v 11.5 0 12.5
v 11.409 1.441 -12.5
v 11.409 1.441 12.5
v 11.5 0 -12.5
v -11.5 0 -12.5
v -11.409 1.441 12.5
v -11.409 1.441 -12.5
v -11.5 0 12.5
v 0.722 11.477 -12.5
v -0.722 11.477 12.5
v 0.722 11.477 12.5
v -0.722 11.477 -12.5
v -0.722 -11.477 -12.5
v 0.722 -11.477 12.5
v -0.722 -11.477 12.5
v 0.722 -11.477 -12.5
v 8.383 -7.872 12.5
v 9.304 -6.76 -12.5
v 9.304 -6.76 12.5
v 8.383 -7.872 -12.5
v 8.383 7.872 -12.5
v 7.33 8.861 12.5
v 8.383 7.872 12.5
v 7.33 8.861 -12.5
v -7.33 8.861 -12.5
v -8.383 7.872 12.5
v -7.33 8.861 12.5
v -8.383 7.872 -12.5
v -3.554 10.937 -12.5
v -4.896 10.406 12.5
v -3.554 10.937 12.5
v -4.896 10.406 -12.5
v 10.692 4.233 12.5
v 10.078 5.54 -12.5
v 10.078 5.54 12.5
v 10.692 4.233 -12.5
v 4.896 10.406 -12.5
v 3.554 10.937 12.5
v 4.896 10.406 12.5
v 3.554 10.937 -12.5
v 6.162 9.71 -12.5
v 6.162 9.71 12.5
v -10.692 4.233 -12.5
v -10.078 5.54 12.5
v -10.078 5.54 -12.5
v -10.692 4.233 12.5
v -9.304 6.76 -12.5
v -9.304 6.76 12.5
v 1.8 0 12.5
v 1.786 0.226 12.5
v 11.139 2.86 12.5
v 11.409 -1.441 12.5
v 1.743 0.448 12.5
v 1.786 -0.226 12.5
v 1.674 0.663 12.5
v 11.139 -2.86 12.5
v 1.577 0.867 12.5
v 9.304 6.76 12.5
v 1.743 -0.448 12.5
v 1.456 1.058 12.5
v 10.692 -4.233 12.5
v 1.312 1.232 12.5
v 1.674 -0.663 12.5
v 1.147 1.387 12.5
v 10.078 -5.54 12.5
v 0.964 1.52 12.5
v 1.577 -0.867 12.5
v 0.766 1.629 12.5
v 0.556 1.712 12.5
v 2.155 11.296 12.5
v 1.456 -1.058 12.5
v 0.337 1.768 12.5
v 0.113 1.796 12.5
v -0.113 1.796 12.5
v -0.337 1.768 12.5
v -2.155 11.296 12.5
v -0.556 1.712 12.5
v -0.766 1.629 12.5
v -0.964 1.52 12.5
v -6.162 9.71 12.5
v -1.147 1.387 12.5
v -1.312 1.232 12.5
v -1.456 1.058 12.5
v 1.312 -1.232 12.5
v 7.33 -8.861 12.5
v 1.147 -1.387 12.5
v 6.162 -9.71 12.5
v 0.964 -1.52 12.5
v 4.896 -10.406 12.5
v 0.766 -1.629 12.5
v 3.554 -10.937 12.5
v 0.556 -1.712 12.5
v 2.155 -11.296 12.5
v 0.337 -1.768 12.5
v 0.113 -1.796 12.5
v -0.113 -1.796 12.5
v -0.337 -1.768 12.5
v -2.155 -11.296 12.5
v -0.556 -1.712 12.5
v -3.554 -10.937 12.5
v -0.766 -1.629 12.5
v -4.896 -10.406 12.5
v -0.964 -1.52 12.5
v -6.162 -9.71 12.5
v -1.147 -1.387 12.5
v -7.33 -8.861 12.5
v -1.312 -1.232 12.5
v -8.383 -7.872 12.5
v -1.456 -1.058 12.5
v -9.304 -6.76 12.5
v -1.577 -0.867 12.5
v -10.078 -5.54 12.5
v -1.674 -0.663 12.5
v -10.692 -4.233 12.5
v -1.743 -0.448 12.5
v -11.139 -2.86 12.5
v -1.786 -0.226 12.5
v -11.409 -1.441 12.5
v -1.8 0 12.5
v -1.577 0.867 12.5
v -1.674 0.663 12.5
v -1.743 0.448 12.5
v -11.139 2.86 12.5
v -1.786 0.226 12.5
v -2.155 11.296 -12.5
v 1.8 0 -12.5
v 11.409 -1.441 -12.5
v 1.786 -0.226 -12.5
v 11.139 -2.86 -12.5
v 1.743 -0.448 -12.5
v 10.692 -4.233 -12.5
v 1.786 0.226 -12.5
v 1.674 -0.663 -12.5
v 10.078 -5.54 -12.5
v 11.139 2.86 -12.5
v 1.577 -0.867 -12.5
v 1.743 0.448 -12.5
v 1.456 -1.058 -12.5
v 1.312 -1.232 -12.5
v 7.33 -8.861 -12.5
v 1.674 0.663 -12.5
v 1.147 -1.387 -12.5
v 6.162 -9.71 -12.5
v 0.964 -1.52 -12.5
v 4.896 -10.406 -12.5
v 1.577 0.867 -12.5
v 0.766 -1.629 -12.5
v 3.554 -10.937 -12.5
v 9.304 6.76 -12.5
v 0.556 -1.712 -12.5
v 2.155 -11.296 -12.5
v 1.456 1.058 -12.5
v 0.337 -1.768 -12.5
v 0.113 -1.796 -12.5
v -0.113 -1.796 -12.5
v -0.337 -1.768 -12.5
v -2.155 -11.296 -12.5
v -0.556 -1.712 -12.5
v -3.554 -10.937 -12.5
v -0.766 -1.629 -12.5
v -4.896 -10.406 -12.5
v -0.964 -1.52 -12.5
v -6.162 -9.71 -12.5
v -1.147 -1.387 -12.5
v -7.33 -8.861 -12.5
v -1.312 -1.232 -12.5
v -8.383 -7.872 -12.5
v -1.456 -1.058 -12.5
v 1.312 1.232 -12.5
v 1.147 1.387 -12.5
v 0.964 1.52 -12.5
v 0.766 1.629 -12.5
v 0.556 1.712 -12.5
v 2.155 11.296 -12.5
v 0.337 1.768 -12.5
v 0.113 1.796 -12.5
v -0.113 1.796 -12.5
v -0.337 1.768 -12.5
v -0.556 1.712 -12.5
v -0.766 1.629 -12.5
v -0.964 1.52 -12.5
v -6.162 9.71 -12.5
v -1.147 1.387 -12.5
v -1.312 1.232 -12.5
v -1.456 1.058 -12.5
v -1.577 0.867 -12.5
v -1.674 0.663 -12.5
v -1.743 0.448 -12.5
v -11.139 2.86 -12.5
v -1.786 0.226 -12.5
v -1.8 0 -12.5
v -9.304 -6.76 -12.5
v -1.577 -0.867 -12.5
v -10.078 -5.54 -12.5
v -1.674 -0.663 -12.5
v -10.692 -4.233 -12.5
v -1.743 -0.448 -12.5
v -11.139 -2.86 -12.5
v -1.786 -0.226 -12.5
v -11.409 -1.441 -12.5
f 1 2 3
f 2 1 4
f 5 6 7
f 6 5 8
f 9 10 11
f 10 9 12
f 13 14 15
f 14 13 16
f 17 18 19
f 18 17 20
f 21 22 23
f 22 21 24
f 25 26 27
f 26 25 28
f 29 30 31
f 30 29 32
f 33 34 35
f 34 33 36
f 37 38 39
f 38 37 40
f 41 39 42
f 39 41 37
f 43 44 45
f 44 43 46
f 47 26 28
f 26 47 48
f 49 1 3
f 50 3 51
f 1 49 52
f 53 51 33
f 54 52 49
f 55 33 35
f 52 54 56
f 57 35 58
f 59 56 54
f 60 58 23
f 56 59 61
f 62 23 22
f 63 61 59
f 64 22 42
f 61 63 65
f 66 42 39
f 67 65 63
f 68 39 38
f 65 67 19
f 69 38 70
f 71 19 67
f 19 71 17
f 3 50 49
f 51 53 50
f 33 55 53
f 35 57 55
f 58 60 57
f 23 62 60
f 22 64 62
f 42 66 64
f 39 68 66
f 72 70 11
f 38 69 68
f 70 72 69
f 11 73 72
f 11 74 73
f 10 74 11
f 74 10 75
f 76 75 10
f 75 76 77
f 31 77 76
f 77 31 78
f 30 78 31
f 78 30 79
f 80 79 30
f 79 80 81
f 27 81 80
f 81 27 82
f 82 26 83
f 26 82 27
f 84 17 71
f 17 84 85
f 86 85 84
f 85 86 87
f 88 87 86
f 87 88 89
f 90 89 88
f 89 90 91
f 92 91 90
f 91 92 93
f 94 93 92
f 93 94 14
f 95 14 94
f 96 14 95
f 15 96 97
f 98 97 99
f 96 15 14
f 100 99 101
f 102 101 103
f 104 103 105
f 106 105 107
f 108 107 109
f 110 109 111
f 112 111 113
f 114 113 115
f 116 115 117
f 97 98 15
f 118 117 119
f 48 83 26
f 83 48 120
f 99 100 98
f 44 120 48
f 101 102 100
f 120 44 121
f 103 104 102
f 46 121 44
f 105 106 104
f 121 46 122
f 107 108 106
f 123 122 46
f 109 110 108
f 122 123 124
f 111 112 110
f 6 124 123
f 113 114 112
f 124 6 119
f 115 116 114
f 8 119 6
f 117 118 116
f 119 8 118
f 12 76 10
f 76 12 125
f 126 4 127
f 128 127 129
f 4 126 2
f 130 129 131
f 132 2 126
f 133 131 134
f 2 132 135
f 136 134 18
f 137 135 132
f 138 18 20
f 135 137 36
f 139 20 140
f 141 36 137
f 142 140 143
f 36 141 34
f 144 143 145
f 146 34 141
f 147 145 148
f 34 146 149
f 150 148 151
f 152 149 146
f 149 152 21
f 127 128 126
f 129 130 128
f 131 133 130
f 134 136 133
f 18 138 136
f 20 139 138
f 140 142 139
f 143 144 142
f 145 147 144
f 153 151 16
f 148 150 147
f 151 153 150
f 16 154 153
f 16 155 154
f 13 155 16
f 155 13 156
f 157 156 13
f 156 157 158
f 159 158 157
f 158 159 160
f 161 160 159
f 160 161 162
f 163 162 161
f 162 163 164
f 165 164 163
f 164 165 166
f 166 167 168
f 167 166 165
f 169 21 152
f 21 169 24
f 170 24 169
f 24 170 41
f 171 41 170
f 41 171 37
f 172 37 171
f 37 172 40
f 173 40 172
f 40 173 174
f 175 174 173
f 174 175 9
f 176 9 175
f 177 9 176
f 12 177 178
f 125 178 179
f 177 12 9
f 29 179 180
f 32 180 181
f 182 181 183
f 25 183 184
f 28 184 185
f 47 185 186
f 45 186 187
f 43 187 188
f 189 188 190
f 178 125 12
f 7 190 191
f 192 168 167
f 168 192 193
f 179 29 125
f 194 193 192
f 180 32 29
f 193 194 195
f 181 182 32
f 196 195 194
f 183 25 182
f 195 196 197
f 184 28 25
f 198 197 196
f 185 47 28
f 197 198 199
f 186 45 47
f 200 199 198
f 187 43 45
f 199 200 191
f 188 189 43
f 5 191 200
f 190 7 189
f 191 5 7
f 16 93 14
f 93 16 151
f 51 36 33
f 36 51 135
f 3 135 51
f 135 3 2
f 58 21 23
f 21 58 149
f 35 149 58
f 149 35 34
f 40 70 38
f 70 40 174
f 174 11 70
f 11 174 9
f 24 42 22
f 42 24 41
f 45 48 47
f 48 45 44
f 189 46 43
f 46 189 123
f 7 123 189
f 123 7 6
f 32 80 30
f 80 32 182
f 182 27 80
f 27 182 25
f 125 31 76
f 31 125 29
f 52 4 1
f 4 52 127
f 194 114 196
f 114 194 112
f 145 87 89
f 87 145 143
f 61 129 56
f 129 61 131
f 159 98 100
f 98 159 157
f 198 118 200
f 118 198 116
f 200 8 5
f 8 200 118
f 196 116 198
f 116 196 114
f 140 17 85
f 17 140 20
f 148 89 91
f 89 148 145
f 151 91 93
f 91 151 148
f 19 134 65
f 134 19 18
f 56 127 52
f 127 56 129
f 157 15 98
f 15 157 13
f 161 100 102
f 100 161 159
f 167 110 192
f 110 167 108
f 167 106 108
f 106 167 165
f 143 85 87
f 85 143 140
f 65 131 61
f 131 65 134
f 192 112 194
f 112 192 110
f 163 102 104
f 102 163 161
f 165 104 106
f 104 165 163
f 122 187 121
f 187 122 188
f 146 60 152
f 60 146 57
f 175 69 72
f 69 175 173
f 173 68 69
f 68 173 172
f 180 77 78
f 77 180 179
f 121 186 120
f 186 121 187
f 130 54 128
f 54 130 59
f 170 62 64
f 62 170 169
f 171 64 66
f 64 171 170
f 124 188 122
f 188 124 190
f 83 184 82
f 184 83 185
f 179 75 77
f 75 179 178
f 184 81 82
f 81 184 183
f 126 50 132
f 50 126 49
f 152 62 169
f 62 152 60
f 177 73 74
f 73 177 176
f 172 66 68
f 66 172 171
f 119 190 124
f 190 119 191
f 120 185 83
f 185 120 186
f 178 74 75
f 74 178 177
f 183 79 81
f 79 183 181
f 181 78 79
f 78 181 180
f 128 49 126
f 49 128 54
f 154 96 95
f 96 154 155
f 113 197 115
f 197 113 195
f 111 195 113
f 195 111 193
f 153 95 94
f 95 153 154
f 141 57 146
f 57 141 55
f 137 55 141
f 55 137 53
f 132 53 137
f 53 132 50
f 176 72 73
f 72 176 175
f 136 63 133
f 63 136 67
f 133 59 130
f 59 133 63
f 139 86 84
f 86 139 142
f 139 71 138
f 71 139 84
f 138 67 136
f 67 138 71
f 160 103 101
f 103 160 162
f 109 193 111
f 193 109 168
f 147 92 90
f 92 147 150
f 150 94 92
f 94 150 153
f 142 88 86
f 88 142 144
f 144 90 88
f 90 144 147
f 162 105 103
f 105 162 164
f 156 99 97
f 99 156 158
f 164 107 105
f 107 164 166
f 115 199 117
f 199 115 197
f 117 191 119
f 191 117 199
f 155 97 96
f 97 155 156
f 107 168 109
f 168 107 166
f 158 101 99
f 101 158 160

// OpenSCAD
$fn = 50;


difference() {
	union() {
		translate(v = [0, 0, -12.5000000000]) {
			cylinder(h = 25, r = 11.5000000000);
		}
	}
	union() {
		translate(v = [0, 0, -100.0000000000]) {
			cylinder(h = 200, r = 1.8000000000);
		}
	}
}
